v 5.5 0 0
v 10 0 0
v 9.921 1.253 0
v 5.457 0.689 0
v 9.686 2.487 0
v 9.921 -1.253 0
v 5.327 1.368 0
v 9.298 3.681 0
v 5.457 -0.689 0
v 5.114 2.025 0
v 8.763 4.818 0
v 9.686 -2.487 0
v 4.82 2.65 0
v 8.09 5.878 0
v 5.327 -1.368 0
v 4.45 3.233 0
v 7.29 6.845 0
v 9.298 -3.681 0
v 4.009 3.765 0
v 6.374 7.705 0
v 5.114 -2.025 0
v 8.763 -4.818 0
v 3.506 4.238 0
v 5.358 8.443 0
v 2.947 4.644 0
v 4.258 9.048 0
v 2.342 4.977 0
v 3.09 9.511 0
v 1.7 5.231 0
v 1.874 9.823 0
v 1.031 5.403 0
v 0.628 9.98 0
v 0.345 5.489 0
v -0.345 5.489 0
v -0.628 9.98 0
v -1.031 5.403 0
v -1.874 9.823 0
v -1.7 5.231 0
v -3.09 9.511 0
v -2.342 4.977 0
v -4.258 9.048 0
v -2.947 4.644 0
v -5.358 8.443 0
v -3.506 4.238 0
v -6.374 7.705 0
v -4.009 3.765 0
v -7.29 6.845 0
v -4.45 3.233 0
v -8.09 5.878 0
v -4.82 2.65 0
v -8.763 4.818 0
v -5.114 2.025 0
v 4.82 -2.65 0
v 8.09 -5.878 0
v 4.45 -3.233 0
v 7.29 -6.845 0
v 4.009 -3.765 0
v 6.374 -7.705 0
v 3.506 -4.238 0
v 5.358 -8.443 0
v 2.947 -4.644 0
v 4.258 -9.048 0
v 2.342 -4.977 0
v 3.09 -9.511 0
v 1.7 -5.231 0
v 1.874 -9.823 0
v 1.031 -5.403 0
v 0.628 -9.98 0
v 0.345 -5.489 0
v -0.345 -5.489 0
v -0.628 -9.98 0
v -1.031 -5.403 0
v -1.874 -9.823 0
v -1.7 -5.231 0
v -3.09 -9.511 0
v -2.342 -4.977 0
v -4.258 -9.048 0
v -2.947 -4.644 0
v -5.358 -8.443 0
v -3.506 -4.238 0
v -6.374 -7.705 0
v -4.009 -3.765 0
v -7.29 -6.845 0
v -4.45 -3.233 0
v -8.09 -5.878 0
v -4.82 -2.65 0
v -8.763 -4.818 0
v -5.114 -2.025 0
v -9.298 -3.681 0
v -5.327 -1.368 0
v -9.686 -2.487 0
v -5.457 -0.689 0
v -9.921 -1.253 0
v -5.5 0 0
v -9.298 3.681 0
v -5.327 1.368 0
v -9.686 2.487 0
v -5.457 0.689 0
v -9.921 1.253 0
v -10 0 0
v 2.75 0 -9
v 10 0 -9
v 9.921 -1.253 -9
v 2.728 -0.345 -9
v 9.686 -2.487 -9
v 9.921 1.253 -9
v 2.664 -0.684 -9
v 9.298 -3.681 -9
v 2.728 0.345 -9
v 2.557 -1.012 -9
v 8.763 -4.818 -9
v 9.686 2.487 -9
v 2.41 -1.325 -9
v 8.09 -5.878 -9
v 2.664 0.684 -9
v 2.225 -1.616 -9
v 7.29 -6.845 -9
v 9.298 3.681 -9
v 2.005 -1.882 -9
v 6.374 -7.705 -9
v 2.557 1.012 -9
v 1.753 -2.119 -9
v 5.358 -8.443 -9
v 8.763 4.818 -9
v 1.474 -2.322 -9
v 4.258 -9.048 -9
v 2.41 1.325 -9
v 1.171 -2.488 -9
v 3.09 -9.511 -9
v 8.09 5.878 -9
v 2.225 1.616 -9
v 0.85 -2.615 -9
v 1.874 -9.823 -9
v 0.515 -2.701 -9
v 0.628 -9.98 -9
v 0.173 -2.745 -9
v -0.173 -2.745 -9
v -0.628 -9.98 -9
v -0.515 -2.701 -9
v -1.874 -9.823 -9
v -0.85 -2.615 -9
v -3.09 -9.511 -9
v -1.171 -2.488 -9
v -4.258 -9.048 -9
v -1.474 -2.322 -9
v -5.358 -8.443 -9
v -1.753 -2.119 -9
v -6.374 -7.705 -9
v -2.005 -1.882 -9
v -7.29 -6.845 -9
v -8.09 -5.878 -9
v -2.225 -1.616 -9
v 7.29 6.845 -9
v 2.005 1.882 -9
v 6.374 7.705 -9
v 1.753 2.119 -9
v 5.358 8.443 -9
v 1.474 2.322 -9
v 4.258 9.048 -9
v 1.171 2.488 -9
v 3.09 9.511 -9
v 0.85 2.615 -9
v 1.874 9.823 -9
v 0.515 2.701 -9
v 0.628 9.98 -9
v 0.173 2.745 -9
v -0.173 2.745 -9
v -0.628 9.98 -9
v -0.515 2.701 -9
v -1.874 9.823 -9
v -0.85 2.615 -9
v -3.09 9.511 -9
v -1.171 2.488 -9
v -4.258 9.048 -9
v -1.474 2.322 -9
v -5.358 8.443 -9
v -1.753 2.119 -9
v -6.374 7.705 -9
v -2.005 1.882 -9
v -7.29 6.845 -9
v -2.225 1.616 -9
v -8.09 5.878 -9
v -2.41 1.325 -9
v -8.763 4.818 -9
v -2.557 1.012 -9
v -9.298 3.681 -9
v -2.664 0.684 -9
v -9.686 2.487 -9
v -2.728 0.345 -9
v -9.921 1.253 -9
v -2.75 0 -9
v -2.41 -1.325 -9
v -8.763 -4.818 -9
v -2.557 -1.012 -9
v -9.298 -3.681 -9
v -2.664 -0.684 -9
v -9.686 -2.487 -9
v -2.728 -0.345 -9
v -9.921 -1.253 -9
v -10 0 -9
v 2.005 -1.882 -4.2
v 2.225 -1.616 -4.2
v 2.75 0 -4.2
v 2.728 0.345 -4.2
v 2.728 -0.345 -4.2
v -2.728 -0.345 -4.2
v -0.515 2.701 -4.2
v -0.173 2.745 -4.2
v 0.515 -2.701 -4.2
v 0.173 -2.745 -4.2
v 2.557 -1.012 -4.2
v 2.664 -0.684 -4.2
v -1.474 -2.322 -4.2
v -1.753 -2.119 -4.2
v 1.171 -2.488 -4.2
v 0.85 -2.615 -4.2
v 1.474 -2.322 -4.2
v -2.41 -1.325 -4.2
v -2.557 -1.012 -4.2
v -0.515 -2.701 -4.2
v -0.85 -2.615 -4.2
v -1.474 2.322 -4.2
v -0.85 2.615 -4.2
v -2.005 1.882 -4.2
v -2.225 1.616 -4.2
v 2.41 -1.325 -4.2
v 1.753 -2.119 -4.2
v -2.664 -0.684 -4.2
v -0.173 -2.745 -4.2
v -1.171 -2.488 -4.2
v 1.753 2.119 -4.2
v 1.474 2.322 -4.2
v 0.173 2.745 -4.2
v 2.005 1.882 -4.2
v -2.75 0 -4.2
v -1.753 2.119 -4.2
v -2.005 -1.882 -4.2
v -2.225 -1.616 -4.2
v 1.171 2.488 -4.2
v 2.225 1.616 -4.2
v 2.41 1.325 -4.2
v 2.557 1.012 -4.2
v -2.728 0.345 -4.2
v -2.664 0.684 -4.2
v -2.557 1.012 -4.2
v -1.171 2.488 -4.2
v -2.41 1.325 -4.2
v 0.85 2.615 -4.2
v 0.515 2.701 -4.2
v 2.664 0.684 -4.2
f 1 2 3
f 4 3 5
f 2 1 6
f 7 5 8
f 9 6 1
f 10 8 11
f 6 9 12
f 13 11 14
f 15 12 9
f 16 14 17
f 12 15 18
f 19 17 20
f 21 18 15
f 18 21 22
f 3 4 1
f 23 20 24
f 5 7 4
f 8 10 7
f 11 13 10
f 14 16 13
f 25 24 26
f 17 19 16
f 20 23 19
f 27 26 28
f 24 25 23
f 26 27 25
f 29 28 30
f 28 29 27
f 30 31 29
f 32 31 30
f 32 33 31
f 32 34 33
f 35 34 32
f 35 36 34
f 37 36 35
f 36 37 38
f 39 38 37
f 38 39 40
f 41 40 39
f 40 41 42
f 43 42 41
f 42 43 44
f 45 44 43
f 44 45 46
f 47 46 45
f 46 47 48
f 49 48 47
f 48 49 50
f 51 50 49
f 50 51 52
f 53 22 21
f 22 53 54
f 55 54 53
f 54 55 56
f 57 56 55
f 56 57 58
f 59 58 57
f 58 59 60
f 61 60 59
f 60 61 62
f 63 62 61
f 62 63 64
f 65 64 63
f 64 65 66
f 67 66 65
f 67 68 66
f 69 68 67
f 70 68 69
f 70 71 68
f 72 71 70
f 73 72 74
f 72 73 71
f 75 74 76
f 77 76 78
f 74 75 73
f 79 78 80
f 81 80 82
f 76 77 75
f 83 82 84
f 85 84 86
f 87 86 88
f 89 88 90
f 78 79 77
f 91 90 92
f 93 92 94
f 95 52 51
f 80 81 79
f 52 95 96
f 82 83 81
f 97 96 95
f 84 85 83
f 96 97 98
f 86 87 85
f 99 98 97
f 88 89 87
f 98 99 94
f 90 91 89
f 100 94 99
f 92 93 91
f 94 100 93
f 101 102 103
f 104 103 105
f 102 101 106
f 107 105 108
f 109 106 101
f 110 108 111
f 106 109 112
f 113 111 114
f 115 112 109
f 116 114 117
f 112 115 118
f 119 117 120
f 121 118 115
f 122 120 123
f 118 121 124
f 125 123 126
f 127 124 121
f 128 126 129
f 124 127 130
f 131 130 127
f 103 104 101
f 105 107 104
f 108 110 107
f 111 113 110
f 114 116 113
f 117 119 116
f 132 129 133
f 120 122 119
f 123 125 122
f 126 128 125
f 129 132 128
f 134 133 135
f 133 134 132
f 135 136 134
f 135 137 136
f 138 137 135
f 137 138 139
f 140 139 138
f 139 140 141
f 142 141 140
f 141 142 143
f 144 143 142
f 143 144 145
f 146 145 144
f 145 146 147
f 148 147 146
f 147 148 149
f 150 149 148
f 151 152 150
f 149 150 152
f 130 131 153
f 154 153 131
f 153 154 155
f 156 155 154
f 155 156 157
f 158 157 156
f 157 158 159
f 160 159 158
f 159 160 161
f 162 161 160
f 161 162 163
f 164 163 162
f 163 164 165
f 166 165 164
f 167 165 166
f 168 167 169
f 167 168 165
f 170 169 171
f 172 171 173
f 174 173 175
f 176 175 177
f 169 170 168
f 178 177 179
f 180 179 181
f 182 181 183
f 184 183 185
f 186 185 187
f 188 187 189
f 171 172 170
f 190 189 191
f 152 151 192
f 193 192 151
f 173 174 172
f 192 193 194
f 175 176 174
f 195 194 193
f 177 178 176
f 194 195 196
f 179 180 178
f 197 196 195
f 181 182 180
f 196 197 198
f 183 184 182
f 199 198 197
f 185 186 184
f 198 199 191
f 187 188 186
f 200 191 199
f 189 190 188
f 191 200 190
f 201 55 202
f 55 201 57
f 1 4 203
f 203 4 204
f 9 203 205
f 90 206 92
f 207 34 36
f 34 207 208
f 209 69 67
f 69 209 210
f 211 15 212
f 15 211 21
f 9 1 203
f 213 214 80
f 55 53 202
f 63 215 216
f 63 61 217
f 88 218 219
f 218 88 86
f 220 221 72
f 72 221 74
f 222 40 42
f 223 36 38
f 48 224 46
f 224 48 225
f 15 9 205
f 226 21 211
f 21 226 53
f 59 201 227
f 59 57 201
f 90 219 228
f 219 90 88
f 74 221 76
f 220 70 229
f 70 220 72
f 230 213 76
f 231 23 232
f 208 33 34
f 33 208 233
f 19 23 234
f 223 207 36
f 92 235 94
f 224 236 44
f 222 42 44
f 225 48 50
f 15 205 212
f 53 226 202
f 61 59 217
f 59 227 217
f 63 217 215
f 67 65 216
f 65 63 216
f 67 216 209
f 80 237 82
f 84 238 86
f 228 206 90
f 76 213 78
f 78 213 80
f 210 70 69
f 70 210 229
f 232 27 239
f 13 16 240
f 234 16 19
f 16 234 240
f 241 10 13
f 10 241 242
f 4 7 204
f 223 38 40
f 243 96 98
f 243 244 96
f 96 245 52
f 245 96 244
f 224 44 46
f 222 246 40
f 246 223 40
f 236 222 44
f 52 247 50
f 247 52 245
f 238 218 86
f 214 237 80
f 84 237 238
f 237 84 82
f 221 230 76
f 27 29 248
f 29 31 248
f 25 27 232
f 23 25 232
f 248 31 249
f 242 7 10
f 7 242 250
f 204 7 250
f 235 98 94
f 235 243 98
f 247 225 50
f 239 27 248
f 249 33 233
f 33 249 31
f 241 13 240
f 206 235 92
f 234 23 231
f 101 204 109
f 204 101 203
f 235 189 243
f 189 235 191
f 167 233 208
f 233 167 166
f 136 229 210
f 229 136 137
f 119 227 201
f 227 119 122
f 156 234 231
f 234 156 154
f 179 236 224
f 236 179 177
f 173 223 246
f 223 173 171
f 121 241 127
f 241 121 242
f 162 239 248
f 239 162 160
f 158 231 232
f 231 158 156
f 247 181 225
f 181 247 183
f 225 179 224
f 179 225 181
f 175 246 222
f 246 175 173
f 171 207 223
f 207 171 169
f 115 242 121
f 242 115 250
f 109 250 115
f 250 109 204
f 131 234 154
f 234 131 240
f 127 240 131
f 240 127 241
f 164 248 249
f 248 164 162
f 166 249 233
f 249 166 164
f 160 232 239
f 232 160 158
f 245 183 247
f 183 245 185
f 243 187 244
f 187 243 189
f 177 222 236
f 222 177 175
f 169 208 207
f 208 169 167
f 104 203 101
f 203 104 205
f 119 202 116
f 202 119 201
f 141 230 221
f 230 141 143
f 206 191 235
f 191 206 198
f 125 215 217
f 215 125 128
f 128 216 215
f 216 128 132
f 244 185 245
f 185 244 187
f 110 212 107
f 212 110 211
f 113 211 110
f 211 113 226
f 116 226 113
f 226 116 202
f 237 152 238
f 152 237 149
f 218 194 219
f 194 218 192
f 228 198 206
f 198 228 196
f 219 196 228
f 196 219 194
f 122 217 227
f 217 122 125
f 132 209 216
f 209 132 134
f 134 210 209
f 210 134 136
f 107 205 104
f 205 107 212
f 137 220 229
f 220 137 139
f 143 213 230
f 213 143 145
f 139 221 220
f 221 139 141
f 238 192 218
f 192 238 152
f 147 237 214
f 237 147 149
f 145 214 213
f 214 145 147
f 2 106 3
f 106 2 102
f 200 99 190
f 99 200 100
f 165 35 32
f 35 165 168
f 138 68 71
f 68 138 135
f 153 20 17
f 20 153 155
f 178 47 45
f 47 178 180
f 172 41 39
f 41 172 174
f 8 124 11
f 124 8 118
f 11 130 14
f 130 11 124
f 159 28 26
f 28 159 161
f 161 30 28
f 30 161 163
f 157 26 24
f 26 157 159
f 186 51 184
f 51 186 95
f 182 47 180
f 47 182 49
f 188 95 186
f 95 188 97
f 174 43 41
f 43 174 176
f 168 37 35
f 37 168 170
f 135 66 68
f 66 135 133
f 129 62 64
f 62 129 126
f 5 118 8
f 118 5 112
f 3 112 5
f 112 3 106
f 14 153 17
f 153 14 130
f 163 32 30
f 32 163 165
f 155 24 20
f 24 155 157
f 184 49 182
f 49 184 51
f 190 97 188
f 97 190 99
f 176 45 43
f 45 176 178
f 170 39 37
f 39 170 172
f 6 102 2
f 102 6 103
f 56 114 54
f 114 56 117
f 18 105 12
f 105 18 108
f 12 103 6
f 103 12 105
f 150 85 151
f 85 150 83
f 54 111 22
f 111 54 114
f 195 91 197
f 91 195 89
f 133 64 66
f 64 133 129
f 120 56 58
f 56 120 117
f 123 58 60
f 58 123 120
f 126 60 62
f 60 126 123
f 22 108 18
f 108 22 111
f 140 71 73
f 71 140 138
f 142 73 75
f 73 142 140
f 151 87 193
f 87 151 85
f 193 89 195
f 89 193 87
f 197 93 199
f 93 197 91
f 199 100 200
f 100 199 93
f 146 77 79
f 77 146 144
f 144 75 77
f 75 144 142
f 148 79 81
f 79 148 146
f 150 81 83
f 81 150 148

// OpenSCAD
$fn = 50;


difference() {
	union() {
		translate(v = [0, 0, -9.0000000000]) {
			cylinder(h = 9, r = 10.0000000000);
		}
		cylinder(h = 0, r = 13.0000000000);
	}
	union() {
		translate(v = [0, 0, 0]) {
			rotate(a = [0, 0, 0]) {
				difference() {
					union() {
						#translate(v = [0, 0, -9.0000000000]) {
							cylinder(h = 9, r = 2.2500000000);
						}
						#translate(v = [0, 0, -4.2000000000]) {
							cylinder(h = 4.2000000000, r = 10.0000000000, r1 = 2.7500000000, r2 = 5.5000000000);
						}
						#translate(v = [0, 0, -9.0000000000]) {
							cylinder(h = 9, r = 2.7500000000);
						}
						#translate(v = [0, 0, -9.0000000000]) {
							cylinder(h = 9, r = 2.2500000000);
						}
					}
					union();
				}
			}
		}
	}
}
